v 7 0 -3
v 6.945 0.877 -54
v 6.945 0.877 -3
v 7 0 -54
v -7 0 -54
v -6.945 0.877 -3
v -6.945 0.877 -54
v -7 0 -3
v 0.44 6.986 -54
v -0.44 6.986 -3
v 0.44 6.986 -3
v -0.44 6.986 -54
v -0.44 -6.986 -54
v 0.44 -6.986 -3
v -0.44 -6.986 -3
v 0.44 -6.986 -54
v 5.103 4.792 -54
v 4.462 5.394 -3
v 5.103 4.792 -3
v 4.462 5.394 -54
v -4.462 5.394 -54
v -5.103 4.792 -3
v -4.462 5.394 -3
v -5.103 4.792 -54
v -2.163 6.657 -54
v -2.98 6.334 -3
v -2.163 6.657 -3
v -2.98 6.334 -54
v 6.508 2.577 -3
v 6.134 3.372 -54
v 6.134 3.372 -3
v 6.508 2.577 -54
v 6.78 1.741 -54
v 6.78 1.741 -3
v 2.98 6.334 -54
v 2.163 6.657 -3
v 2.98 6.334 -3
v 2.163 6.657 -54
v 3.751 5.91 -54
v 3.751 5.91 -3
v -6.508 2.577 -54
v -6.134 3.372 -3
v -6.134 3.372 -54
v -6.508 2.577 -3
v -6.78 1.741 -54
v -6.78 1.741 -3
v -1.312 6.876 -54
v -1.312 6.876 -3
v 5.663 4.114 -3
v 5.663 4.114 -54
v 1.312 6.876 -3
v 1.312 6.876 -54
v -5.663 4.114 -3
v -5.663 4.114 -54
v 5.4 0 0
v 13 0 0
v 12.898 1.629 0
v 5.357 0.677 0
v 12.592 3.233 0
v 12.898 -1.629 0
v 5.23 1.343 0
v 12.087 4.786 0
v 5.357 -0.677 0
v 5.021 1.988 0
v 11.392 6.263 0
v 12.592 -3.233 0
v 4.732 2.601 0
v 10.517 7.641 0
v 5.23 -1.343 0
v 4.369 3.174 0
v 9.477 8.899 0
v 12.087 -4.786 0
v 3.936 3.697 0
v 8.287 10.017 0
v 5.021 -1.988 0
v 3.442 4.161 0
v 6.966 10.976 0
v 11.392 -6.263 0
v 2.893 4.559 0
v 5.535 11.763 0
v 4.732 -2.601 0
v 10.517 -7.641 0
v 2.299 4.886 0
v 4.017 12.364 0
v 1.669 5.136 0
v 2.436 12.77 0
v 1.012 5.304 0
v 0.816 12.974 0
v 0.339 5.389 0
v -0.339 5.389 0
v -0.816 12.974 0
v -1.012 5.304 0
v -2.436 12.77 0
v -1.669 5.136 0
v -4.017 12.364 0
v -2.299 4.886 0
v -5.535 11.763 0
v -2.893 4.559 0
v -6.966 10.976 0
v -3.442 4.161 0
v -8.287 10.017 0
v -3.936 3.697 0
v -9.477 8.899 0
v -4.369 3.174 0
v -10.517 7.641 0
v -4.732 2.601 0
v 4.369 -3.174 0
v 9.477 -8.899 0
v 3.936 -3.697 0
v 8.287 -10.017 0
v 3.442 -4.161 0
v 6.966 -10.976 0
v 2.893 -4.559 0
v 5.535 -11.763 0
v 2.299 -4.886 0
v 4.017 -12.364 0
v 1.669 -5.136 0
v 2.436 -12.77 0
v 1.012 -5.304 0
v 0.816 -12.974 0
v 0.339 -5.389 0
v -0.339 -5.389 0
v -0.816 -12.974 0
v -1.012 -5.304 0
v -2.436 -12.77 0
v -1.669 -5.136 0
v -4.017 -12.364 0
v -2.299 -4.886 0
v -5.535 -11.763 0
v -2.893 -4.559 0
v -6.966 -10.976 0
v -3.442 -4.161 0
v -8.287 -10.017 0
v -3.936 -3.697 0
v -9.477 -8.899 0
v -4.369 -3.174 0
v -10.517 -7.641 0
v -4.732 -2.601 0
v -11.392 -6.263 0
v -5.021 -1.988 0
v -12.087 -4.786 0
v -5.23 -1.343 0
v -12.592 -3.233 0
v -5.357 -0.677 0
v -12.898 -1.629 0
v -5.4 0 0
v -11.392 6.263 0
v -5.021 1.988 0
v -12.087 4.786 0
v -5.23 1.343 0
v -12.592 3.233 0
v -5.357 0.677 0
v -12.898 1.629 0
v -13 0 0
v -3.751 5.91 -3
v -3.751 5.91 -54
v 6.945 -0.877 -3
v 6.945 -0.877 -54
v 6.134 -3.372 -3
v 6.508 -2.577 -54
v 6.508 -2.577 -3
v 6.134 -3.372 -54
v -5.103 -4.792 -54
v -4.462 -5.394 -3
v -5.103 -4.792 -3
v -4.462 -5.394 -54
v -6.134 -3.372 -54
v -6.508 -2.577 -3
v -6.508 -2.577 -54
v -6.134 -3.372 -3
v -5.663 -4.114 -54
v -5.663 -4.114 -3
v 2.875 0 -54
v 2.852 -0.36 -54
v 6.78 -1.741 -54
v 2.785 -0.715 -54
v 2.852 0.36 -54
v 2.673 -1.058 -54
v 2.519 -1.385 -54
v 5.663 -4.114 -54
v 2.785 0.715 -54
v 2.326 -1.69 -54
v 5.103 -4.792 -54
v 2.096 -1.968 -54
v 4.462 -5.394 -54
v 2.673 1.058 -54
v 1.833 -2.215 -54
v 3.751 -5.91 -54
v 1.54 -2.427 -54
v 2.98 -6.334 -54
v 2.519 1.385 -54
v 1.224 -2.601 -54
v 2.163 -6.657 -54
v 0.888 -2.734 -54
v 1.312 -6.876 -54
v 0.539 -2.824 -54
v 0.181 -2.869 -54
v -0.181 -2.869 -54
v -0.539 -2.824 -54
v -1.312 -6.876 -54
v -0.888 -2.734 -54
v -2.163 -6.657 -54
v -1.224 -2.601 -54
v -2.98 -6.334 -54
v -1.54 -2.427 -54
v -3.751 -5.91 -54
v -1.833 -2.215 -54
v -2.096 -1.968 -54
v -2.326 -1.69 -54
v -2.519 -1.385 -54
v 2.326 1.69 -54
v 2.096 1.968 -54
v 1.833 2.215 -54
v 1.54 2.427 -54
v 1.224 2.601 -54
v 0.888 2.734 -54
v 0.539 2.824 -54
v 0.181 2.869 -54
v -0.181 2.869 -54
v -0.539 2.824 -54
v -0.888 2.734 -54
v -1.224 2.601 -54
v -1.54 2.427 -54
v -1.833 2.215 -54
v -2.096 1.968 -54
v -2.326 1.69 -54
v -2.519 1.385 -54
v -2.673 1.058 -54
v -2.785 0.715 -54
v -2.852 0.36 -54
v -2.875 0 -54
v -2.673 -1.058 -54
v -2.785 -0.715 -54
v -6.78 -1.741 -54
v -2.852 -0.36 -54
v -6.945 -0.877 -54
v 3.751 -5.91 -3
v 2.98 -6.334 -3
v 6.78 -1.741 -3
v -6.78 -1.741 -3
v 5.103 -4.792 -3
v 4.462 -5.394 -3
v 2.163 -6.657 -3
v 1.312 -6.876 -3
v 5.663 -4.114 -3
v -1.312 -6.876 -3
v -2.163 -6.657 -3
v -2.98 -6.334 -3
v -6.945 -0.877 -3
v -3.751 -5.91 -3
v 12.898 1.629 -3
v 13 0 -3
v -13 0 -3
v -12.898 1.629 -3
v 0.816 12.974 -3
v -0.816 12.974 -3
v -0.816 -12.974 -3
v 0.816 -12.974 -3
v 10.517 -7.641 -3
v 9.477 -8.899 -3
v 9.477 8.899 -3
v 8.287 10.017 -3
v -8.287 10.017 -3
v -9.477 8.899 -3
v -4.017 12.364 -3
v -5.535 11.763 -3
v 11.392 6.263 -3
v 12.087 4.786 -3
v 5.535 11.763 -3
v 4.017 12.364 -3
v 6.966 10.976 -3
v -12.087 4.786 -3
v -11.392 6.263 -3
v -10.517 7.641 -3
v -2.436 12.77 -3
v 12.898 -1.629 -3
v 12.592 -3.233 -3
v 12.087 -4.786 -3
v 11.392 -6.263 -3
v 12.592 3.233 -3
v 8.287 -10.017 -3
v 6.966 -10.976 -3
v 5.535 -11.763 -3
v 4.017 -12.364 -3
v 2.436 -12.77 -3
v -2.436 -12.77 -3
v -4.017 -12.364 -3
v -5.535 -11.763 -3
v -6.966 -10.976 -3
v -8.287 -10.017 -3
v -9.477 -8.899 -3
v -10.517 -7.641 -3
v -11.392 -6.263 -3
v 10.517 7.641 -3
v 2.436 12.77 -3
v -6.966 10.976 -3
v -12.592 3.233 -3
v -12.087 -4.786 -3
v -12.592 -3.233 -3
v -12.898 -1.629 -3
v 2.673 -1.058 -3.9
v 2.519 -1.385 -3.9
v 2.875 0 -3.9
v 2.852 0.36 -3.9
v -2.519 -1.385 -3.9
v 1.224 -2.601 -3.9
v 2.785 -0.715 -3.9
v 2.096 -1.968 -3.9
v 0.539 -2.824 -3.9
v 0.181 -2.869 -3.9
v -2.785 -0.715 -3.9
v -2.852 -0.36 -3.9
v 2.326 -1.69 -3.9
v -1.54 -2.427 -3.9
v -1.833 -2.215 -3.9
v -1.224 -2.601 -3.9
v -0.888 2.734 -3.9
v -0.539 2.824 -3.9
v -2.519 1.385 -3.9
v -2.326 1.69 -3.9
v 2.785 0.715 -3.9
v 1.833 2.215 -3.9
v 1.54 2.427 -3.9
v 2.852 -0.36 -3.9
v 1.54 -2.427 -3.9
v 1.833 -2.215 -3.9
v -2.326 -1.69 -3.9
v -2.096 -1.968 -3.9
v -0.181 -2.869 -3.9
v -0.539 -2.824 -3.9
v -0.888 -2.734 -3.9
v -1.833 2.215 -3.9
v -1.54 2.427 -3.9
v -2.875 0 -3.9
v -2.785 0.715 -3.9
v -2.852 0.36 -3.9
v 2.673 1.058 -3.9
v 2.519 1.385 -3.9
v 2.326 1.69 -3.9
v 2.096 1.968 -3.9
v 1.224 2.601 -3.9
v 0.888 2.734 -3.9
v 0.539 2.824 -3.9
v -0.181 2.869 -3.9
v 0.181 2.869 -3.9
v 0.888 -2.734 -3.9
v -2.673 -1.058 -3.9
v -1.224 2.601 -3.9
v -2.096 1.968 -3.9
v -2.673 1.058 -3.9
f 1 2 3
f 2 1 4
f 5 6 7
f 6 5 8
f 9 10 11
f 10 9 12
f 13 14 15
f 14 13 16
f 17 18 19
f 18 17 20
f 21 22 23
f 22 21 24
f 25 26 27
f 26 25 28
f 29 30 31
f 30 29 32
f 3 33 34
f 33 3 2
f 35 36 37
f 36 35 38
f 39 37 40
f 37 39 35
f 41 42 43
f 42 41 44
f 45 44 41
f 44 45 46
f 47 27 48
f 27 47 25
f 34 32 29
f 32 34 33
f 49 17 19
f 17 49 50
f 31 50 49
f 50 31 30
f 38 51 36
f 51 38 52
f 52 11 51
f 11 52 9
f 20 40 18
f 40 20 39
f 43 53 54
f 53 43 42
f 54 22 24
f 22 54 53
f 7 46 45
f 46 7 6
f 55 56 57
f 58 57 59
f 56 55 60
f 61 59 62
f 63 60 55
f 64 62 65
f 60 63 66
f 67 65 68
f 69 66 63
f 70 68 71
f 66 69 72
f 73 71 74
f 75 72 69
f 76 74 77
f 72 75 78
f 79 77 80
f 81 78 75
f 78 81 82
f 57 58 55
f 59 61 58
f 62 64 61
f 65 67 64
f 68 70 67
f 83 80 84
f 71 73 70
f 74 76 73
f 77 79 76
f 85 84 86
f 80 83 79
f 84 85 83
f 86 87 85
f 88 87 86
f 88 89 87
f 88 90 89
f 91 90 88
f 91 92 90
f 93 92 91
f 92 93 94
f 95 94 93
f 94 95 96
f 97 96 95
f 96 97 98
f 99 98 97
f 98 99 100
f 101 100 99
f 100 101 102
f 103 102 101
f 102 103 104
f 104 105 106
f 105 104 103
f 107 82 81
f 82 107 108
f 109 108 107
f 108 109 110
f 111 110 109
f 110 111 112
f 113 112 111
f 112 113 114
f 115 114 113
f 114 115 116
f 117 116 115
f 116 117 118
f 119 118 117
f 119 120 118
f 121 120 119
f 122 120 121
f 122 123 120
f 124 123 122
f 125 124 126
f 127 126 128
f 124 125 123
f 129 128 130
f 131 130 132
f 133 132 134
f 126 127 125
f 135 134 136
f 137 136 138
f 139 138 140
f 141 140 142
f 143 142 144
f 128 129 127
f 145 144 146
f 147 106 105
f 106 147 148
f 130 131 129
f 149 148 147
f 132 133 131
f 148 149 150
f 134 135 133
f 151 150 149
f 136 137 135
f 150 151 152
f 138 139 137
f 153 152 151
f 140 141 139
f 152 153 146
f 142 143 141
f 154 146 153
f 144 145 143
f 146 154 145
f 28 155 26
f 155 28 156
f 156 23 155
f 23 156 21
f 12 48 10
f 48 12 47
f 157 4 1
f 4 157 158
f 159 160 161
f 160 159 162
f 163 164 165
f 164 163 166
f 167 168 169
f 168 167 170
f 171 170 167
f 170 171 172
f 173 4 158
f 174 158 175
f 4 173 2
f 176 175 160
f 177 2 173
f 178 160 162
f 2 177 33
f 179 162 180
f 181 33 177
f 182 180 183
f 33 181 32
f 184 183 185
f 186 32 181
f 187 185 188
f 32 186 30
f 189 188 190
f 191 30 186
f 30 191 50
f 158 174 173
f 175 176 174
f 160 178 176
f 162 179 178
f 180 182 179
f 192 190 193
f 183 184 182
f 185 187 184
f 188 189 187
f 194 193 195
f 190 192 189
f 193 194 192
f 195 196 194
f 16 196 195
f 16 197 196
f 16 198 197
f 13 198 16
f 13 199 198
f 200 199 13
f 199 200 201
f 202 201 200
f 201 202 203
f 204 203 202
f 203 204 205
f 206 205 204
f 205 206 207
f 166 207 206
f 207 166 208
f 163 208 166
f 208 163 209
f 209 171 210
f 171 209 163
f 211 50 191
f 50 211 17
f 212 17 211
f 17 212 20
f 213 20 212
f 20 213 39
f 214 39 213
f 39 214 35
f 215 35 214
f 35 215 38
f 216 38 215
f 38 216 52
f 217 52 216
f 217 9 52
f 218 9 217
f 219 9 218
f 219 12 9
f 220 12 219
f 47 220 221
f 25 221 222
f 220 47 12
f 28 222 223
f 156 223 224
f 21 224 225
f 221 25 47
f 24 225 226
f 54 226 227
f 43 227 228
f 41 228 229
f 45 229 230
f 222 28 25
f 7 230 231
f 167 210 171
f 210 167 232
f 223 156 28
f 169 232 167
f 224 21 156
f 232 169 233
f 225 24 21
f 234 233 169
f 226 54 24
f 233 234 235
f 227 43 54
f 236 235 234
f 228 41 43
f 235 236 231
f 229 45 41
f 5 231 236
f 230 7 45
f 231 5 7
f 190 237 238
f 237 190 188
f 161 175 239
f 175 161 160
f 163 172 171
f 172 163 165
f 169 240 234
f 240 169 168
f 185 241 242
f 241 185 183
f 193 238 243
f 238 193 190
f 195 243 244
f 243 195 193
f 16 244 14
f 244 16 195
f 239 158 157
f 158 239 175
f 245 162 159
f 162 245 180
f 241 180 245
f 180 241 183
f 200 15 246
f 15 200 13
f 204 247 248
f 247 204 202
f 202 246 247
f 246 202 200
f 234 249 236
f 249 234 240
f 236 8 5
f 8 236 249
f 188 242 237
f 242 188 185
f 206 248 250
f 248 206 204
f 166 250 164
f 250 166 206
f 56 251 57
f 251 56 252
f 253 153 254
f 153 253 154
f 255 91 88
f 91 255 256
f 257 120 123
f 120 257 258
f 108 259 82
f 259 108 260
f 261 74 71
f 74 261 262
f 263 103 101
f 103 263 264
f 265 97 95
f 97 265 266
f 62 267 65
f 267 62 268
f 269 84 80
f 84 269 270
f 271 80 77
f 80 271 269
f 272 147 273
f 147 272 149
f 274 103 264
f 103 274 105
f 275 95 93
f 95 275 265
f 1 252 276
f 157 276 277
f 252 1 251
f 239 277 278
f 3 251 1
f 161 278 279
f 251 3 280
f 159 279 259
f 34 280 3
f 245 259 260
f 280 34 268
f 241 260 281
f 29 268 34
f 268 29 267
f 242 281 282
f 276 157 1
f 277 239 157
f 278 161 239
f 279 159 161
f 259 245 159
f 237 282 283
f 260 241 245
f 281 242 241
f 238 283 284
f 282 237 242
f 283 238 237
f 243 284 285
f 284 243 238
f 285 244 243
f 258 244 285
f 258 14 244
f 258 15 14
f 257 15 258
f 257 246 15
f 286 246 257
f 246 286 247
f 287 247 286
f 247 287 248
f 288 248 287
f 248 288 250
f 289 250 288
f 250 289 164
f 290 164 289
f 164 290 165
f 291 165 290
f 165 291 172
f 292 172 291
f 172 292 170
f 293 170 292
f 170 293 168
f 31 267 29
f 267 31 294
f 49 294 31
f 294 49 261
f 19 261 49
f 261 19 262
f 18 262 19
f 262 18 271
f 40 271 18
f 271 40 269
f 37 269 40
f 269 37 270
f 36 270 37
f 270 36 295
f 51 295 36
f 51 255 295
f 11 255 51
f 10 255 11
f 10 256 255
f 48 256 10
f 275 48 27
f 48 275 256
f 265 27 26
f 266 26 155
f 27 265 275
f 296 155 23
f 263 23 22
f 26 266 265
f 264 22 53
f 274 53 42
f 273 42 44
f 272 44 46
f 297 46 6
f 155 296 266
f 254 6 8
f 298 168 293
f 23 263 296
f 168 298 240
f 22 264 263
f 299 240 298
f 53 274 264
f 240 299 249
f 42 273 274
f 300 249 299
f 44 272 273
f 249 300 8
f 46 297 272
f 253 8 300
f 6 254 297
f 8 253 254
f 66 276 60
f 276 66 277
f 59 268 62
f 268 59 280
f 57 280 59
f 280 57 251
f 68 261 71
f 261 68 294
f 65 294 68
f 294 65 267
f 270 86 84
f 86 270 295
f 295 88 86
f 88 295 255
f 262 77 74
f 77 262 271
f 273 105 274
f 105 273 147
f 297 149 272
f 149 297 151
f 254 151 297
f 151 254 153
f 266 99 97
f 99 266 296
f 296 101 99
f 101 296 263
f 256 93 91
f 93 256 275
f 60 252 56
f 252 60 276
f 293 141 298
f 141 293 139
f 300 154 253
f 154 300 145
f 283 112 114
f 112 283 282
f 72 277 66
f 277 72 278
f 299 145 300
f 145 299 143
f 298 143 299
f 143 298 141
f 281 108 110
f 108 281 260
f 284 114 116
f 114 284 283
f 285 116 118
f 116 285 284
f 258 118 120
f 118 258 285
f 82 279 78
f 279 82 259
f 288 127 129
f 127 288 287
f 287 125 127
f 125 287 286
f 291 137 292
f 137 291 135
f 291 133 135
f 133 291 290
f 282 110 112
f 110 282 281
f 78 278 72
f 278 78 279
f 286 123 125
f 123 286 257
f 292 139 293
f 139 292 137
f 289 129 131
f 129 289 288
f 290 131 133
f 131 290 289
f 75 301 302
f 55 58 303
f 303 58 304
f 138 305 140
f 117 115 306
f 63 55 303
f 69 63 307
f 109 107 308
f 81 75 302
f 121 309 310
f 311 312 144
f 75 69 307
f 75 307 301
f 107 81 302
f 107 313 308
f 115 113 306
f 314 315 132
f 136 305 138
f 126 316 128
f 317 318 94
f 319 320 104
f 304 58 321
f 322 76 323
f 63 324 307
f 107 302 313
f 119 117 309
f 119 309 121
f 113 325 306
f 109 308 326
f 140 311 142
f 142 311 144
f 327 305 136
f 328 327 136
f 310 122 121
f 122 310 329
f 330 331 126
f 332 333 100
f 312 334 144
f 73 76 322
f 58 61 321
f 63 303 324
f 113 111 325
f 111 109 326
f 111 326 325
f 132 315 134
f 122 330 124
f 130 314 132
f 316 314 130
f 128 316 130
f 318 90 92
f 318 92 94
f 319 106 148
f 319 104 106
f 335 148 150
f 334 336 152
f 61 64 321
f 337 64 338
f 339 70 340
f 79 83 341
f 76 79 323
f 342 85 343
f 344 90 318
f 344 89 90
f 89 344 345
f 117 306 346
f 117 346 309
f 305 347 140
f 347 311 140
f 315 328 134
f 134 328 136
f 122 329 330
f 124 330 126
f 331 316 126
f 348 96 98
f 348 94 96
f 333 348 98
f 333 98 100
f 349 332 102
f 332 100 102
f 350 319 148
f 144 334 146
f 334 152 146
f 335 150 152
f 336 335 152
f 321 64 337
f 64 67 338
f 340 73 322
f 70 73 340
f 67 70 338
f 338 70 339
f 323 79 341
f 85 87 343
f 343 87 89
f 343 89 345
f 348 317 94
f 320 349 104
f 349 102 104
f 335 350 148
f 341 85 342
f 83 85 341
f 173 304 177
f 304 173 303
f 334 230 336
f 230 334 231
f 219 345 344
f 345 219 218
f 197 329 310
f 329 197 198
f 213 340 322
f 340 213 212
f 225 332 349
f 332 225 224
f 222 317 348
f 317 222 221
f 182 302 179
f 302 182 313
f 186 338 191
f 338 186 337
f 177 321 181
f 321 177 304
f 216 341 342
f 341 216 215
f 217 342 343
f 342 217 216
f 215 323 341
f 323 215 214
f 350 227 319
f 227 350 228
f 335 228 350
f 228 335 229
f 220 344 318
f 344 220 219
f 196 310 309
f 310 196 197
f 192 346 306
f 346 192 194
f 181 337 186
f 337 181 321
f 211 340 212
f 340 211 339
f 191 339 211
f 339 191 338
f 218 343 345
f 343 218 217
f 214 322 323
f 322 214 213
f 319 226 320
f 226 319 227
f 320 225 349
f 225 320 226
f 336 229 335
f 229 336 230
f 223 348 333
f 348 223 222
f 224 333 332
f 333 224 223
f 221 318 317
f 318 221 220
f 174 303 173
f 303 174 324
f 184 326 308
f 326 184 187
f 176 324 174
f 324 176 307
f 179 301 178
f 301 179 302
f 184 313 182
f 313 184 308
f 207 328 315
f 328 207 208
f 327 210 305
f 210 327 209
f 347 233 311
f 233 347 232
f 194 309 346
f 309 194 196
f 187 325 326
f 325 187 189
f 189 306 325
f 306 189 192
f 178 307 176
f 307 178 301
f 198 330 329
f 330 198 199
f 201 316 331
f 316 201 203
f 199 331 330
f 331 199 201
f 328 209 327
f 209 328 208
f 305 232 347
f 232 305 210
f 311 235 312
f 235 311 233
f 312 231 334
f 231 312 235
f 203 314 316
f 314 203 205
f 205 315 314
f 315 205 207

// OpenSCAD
$fn = 50;


difference() {
	union() {
		translate(v = [0, 0, -54.0000000000]) {
			cylinder(h = 54, r = 7.0000000000);
		}
		translate(v = [0, 0, -3.0000000000]) {
			cylinder(h = 3, r = 13.0000000000);
		}
	}
	union() {
		translate(v = [0, 0, 0]) {
			rotate(a = [0, 0, 0]) {
				difference() {
					union() {
						#translate(v = [0, 0, -54.0000000000]) {
							cylinder(h = 54, r = 2.6000000000);
						}
						#translate(v = [0, 0, -3.9000000000]) {
							cylinder(h = 3.9000000000, r1 = 2.8750000000, r2 = 5.4000000000);
						}
						#translate(v = [0, 0, -54.0000000000]) {
							cylinder(h = 54, r = 2.8750000000);
						}
						#translate(v = [0, 0, -54.0000000000]) {
							cylinder(h = 54, r = 2.6000000000);
						}
					}
					union();
				}
			}
		}
	}
}
